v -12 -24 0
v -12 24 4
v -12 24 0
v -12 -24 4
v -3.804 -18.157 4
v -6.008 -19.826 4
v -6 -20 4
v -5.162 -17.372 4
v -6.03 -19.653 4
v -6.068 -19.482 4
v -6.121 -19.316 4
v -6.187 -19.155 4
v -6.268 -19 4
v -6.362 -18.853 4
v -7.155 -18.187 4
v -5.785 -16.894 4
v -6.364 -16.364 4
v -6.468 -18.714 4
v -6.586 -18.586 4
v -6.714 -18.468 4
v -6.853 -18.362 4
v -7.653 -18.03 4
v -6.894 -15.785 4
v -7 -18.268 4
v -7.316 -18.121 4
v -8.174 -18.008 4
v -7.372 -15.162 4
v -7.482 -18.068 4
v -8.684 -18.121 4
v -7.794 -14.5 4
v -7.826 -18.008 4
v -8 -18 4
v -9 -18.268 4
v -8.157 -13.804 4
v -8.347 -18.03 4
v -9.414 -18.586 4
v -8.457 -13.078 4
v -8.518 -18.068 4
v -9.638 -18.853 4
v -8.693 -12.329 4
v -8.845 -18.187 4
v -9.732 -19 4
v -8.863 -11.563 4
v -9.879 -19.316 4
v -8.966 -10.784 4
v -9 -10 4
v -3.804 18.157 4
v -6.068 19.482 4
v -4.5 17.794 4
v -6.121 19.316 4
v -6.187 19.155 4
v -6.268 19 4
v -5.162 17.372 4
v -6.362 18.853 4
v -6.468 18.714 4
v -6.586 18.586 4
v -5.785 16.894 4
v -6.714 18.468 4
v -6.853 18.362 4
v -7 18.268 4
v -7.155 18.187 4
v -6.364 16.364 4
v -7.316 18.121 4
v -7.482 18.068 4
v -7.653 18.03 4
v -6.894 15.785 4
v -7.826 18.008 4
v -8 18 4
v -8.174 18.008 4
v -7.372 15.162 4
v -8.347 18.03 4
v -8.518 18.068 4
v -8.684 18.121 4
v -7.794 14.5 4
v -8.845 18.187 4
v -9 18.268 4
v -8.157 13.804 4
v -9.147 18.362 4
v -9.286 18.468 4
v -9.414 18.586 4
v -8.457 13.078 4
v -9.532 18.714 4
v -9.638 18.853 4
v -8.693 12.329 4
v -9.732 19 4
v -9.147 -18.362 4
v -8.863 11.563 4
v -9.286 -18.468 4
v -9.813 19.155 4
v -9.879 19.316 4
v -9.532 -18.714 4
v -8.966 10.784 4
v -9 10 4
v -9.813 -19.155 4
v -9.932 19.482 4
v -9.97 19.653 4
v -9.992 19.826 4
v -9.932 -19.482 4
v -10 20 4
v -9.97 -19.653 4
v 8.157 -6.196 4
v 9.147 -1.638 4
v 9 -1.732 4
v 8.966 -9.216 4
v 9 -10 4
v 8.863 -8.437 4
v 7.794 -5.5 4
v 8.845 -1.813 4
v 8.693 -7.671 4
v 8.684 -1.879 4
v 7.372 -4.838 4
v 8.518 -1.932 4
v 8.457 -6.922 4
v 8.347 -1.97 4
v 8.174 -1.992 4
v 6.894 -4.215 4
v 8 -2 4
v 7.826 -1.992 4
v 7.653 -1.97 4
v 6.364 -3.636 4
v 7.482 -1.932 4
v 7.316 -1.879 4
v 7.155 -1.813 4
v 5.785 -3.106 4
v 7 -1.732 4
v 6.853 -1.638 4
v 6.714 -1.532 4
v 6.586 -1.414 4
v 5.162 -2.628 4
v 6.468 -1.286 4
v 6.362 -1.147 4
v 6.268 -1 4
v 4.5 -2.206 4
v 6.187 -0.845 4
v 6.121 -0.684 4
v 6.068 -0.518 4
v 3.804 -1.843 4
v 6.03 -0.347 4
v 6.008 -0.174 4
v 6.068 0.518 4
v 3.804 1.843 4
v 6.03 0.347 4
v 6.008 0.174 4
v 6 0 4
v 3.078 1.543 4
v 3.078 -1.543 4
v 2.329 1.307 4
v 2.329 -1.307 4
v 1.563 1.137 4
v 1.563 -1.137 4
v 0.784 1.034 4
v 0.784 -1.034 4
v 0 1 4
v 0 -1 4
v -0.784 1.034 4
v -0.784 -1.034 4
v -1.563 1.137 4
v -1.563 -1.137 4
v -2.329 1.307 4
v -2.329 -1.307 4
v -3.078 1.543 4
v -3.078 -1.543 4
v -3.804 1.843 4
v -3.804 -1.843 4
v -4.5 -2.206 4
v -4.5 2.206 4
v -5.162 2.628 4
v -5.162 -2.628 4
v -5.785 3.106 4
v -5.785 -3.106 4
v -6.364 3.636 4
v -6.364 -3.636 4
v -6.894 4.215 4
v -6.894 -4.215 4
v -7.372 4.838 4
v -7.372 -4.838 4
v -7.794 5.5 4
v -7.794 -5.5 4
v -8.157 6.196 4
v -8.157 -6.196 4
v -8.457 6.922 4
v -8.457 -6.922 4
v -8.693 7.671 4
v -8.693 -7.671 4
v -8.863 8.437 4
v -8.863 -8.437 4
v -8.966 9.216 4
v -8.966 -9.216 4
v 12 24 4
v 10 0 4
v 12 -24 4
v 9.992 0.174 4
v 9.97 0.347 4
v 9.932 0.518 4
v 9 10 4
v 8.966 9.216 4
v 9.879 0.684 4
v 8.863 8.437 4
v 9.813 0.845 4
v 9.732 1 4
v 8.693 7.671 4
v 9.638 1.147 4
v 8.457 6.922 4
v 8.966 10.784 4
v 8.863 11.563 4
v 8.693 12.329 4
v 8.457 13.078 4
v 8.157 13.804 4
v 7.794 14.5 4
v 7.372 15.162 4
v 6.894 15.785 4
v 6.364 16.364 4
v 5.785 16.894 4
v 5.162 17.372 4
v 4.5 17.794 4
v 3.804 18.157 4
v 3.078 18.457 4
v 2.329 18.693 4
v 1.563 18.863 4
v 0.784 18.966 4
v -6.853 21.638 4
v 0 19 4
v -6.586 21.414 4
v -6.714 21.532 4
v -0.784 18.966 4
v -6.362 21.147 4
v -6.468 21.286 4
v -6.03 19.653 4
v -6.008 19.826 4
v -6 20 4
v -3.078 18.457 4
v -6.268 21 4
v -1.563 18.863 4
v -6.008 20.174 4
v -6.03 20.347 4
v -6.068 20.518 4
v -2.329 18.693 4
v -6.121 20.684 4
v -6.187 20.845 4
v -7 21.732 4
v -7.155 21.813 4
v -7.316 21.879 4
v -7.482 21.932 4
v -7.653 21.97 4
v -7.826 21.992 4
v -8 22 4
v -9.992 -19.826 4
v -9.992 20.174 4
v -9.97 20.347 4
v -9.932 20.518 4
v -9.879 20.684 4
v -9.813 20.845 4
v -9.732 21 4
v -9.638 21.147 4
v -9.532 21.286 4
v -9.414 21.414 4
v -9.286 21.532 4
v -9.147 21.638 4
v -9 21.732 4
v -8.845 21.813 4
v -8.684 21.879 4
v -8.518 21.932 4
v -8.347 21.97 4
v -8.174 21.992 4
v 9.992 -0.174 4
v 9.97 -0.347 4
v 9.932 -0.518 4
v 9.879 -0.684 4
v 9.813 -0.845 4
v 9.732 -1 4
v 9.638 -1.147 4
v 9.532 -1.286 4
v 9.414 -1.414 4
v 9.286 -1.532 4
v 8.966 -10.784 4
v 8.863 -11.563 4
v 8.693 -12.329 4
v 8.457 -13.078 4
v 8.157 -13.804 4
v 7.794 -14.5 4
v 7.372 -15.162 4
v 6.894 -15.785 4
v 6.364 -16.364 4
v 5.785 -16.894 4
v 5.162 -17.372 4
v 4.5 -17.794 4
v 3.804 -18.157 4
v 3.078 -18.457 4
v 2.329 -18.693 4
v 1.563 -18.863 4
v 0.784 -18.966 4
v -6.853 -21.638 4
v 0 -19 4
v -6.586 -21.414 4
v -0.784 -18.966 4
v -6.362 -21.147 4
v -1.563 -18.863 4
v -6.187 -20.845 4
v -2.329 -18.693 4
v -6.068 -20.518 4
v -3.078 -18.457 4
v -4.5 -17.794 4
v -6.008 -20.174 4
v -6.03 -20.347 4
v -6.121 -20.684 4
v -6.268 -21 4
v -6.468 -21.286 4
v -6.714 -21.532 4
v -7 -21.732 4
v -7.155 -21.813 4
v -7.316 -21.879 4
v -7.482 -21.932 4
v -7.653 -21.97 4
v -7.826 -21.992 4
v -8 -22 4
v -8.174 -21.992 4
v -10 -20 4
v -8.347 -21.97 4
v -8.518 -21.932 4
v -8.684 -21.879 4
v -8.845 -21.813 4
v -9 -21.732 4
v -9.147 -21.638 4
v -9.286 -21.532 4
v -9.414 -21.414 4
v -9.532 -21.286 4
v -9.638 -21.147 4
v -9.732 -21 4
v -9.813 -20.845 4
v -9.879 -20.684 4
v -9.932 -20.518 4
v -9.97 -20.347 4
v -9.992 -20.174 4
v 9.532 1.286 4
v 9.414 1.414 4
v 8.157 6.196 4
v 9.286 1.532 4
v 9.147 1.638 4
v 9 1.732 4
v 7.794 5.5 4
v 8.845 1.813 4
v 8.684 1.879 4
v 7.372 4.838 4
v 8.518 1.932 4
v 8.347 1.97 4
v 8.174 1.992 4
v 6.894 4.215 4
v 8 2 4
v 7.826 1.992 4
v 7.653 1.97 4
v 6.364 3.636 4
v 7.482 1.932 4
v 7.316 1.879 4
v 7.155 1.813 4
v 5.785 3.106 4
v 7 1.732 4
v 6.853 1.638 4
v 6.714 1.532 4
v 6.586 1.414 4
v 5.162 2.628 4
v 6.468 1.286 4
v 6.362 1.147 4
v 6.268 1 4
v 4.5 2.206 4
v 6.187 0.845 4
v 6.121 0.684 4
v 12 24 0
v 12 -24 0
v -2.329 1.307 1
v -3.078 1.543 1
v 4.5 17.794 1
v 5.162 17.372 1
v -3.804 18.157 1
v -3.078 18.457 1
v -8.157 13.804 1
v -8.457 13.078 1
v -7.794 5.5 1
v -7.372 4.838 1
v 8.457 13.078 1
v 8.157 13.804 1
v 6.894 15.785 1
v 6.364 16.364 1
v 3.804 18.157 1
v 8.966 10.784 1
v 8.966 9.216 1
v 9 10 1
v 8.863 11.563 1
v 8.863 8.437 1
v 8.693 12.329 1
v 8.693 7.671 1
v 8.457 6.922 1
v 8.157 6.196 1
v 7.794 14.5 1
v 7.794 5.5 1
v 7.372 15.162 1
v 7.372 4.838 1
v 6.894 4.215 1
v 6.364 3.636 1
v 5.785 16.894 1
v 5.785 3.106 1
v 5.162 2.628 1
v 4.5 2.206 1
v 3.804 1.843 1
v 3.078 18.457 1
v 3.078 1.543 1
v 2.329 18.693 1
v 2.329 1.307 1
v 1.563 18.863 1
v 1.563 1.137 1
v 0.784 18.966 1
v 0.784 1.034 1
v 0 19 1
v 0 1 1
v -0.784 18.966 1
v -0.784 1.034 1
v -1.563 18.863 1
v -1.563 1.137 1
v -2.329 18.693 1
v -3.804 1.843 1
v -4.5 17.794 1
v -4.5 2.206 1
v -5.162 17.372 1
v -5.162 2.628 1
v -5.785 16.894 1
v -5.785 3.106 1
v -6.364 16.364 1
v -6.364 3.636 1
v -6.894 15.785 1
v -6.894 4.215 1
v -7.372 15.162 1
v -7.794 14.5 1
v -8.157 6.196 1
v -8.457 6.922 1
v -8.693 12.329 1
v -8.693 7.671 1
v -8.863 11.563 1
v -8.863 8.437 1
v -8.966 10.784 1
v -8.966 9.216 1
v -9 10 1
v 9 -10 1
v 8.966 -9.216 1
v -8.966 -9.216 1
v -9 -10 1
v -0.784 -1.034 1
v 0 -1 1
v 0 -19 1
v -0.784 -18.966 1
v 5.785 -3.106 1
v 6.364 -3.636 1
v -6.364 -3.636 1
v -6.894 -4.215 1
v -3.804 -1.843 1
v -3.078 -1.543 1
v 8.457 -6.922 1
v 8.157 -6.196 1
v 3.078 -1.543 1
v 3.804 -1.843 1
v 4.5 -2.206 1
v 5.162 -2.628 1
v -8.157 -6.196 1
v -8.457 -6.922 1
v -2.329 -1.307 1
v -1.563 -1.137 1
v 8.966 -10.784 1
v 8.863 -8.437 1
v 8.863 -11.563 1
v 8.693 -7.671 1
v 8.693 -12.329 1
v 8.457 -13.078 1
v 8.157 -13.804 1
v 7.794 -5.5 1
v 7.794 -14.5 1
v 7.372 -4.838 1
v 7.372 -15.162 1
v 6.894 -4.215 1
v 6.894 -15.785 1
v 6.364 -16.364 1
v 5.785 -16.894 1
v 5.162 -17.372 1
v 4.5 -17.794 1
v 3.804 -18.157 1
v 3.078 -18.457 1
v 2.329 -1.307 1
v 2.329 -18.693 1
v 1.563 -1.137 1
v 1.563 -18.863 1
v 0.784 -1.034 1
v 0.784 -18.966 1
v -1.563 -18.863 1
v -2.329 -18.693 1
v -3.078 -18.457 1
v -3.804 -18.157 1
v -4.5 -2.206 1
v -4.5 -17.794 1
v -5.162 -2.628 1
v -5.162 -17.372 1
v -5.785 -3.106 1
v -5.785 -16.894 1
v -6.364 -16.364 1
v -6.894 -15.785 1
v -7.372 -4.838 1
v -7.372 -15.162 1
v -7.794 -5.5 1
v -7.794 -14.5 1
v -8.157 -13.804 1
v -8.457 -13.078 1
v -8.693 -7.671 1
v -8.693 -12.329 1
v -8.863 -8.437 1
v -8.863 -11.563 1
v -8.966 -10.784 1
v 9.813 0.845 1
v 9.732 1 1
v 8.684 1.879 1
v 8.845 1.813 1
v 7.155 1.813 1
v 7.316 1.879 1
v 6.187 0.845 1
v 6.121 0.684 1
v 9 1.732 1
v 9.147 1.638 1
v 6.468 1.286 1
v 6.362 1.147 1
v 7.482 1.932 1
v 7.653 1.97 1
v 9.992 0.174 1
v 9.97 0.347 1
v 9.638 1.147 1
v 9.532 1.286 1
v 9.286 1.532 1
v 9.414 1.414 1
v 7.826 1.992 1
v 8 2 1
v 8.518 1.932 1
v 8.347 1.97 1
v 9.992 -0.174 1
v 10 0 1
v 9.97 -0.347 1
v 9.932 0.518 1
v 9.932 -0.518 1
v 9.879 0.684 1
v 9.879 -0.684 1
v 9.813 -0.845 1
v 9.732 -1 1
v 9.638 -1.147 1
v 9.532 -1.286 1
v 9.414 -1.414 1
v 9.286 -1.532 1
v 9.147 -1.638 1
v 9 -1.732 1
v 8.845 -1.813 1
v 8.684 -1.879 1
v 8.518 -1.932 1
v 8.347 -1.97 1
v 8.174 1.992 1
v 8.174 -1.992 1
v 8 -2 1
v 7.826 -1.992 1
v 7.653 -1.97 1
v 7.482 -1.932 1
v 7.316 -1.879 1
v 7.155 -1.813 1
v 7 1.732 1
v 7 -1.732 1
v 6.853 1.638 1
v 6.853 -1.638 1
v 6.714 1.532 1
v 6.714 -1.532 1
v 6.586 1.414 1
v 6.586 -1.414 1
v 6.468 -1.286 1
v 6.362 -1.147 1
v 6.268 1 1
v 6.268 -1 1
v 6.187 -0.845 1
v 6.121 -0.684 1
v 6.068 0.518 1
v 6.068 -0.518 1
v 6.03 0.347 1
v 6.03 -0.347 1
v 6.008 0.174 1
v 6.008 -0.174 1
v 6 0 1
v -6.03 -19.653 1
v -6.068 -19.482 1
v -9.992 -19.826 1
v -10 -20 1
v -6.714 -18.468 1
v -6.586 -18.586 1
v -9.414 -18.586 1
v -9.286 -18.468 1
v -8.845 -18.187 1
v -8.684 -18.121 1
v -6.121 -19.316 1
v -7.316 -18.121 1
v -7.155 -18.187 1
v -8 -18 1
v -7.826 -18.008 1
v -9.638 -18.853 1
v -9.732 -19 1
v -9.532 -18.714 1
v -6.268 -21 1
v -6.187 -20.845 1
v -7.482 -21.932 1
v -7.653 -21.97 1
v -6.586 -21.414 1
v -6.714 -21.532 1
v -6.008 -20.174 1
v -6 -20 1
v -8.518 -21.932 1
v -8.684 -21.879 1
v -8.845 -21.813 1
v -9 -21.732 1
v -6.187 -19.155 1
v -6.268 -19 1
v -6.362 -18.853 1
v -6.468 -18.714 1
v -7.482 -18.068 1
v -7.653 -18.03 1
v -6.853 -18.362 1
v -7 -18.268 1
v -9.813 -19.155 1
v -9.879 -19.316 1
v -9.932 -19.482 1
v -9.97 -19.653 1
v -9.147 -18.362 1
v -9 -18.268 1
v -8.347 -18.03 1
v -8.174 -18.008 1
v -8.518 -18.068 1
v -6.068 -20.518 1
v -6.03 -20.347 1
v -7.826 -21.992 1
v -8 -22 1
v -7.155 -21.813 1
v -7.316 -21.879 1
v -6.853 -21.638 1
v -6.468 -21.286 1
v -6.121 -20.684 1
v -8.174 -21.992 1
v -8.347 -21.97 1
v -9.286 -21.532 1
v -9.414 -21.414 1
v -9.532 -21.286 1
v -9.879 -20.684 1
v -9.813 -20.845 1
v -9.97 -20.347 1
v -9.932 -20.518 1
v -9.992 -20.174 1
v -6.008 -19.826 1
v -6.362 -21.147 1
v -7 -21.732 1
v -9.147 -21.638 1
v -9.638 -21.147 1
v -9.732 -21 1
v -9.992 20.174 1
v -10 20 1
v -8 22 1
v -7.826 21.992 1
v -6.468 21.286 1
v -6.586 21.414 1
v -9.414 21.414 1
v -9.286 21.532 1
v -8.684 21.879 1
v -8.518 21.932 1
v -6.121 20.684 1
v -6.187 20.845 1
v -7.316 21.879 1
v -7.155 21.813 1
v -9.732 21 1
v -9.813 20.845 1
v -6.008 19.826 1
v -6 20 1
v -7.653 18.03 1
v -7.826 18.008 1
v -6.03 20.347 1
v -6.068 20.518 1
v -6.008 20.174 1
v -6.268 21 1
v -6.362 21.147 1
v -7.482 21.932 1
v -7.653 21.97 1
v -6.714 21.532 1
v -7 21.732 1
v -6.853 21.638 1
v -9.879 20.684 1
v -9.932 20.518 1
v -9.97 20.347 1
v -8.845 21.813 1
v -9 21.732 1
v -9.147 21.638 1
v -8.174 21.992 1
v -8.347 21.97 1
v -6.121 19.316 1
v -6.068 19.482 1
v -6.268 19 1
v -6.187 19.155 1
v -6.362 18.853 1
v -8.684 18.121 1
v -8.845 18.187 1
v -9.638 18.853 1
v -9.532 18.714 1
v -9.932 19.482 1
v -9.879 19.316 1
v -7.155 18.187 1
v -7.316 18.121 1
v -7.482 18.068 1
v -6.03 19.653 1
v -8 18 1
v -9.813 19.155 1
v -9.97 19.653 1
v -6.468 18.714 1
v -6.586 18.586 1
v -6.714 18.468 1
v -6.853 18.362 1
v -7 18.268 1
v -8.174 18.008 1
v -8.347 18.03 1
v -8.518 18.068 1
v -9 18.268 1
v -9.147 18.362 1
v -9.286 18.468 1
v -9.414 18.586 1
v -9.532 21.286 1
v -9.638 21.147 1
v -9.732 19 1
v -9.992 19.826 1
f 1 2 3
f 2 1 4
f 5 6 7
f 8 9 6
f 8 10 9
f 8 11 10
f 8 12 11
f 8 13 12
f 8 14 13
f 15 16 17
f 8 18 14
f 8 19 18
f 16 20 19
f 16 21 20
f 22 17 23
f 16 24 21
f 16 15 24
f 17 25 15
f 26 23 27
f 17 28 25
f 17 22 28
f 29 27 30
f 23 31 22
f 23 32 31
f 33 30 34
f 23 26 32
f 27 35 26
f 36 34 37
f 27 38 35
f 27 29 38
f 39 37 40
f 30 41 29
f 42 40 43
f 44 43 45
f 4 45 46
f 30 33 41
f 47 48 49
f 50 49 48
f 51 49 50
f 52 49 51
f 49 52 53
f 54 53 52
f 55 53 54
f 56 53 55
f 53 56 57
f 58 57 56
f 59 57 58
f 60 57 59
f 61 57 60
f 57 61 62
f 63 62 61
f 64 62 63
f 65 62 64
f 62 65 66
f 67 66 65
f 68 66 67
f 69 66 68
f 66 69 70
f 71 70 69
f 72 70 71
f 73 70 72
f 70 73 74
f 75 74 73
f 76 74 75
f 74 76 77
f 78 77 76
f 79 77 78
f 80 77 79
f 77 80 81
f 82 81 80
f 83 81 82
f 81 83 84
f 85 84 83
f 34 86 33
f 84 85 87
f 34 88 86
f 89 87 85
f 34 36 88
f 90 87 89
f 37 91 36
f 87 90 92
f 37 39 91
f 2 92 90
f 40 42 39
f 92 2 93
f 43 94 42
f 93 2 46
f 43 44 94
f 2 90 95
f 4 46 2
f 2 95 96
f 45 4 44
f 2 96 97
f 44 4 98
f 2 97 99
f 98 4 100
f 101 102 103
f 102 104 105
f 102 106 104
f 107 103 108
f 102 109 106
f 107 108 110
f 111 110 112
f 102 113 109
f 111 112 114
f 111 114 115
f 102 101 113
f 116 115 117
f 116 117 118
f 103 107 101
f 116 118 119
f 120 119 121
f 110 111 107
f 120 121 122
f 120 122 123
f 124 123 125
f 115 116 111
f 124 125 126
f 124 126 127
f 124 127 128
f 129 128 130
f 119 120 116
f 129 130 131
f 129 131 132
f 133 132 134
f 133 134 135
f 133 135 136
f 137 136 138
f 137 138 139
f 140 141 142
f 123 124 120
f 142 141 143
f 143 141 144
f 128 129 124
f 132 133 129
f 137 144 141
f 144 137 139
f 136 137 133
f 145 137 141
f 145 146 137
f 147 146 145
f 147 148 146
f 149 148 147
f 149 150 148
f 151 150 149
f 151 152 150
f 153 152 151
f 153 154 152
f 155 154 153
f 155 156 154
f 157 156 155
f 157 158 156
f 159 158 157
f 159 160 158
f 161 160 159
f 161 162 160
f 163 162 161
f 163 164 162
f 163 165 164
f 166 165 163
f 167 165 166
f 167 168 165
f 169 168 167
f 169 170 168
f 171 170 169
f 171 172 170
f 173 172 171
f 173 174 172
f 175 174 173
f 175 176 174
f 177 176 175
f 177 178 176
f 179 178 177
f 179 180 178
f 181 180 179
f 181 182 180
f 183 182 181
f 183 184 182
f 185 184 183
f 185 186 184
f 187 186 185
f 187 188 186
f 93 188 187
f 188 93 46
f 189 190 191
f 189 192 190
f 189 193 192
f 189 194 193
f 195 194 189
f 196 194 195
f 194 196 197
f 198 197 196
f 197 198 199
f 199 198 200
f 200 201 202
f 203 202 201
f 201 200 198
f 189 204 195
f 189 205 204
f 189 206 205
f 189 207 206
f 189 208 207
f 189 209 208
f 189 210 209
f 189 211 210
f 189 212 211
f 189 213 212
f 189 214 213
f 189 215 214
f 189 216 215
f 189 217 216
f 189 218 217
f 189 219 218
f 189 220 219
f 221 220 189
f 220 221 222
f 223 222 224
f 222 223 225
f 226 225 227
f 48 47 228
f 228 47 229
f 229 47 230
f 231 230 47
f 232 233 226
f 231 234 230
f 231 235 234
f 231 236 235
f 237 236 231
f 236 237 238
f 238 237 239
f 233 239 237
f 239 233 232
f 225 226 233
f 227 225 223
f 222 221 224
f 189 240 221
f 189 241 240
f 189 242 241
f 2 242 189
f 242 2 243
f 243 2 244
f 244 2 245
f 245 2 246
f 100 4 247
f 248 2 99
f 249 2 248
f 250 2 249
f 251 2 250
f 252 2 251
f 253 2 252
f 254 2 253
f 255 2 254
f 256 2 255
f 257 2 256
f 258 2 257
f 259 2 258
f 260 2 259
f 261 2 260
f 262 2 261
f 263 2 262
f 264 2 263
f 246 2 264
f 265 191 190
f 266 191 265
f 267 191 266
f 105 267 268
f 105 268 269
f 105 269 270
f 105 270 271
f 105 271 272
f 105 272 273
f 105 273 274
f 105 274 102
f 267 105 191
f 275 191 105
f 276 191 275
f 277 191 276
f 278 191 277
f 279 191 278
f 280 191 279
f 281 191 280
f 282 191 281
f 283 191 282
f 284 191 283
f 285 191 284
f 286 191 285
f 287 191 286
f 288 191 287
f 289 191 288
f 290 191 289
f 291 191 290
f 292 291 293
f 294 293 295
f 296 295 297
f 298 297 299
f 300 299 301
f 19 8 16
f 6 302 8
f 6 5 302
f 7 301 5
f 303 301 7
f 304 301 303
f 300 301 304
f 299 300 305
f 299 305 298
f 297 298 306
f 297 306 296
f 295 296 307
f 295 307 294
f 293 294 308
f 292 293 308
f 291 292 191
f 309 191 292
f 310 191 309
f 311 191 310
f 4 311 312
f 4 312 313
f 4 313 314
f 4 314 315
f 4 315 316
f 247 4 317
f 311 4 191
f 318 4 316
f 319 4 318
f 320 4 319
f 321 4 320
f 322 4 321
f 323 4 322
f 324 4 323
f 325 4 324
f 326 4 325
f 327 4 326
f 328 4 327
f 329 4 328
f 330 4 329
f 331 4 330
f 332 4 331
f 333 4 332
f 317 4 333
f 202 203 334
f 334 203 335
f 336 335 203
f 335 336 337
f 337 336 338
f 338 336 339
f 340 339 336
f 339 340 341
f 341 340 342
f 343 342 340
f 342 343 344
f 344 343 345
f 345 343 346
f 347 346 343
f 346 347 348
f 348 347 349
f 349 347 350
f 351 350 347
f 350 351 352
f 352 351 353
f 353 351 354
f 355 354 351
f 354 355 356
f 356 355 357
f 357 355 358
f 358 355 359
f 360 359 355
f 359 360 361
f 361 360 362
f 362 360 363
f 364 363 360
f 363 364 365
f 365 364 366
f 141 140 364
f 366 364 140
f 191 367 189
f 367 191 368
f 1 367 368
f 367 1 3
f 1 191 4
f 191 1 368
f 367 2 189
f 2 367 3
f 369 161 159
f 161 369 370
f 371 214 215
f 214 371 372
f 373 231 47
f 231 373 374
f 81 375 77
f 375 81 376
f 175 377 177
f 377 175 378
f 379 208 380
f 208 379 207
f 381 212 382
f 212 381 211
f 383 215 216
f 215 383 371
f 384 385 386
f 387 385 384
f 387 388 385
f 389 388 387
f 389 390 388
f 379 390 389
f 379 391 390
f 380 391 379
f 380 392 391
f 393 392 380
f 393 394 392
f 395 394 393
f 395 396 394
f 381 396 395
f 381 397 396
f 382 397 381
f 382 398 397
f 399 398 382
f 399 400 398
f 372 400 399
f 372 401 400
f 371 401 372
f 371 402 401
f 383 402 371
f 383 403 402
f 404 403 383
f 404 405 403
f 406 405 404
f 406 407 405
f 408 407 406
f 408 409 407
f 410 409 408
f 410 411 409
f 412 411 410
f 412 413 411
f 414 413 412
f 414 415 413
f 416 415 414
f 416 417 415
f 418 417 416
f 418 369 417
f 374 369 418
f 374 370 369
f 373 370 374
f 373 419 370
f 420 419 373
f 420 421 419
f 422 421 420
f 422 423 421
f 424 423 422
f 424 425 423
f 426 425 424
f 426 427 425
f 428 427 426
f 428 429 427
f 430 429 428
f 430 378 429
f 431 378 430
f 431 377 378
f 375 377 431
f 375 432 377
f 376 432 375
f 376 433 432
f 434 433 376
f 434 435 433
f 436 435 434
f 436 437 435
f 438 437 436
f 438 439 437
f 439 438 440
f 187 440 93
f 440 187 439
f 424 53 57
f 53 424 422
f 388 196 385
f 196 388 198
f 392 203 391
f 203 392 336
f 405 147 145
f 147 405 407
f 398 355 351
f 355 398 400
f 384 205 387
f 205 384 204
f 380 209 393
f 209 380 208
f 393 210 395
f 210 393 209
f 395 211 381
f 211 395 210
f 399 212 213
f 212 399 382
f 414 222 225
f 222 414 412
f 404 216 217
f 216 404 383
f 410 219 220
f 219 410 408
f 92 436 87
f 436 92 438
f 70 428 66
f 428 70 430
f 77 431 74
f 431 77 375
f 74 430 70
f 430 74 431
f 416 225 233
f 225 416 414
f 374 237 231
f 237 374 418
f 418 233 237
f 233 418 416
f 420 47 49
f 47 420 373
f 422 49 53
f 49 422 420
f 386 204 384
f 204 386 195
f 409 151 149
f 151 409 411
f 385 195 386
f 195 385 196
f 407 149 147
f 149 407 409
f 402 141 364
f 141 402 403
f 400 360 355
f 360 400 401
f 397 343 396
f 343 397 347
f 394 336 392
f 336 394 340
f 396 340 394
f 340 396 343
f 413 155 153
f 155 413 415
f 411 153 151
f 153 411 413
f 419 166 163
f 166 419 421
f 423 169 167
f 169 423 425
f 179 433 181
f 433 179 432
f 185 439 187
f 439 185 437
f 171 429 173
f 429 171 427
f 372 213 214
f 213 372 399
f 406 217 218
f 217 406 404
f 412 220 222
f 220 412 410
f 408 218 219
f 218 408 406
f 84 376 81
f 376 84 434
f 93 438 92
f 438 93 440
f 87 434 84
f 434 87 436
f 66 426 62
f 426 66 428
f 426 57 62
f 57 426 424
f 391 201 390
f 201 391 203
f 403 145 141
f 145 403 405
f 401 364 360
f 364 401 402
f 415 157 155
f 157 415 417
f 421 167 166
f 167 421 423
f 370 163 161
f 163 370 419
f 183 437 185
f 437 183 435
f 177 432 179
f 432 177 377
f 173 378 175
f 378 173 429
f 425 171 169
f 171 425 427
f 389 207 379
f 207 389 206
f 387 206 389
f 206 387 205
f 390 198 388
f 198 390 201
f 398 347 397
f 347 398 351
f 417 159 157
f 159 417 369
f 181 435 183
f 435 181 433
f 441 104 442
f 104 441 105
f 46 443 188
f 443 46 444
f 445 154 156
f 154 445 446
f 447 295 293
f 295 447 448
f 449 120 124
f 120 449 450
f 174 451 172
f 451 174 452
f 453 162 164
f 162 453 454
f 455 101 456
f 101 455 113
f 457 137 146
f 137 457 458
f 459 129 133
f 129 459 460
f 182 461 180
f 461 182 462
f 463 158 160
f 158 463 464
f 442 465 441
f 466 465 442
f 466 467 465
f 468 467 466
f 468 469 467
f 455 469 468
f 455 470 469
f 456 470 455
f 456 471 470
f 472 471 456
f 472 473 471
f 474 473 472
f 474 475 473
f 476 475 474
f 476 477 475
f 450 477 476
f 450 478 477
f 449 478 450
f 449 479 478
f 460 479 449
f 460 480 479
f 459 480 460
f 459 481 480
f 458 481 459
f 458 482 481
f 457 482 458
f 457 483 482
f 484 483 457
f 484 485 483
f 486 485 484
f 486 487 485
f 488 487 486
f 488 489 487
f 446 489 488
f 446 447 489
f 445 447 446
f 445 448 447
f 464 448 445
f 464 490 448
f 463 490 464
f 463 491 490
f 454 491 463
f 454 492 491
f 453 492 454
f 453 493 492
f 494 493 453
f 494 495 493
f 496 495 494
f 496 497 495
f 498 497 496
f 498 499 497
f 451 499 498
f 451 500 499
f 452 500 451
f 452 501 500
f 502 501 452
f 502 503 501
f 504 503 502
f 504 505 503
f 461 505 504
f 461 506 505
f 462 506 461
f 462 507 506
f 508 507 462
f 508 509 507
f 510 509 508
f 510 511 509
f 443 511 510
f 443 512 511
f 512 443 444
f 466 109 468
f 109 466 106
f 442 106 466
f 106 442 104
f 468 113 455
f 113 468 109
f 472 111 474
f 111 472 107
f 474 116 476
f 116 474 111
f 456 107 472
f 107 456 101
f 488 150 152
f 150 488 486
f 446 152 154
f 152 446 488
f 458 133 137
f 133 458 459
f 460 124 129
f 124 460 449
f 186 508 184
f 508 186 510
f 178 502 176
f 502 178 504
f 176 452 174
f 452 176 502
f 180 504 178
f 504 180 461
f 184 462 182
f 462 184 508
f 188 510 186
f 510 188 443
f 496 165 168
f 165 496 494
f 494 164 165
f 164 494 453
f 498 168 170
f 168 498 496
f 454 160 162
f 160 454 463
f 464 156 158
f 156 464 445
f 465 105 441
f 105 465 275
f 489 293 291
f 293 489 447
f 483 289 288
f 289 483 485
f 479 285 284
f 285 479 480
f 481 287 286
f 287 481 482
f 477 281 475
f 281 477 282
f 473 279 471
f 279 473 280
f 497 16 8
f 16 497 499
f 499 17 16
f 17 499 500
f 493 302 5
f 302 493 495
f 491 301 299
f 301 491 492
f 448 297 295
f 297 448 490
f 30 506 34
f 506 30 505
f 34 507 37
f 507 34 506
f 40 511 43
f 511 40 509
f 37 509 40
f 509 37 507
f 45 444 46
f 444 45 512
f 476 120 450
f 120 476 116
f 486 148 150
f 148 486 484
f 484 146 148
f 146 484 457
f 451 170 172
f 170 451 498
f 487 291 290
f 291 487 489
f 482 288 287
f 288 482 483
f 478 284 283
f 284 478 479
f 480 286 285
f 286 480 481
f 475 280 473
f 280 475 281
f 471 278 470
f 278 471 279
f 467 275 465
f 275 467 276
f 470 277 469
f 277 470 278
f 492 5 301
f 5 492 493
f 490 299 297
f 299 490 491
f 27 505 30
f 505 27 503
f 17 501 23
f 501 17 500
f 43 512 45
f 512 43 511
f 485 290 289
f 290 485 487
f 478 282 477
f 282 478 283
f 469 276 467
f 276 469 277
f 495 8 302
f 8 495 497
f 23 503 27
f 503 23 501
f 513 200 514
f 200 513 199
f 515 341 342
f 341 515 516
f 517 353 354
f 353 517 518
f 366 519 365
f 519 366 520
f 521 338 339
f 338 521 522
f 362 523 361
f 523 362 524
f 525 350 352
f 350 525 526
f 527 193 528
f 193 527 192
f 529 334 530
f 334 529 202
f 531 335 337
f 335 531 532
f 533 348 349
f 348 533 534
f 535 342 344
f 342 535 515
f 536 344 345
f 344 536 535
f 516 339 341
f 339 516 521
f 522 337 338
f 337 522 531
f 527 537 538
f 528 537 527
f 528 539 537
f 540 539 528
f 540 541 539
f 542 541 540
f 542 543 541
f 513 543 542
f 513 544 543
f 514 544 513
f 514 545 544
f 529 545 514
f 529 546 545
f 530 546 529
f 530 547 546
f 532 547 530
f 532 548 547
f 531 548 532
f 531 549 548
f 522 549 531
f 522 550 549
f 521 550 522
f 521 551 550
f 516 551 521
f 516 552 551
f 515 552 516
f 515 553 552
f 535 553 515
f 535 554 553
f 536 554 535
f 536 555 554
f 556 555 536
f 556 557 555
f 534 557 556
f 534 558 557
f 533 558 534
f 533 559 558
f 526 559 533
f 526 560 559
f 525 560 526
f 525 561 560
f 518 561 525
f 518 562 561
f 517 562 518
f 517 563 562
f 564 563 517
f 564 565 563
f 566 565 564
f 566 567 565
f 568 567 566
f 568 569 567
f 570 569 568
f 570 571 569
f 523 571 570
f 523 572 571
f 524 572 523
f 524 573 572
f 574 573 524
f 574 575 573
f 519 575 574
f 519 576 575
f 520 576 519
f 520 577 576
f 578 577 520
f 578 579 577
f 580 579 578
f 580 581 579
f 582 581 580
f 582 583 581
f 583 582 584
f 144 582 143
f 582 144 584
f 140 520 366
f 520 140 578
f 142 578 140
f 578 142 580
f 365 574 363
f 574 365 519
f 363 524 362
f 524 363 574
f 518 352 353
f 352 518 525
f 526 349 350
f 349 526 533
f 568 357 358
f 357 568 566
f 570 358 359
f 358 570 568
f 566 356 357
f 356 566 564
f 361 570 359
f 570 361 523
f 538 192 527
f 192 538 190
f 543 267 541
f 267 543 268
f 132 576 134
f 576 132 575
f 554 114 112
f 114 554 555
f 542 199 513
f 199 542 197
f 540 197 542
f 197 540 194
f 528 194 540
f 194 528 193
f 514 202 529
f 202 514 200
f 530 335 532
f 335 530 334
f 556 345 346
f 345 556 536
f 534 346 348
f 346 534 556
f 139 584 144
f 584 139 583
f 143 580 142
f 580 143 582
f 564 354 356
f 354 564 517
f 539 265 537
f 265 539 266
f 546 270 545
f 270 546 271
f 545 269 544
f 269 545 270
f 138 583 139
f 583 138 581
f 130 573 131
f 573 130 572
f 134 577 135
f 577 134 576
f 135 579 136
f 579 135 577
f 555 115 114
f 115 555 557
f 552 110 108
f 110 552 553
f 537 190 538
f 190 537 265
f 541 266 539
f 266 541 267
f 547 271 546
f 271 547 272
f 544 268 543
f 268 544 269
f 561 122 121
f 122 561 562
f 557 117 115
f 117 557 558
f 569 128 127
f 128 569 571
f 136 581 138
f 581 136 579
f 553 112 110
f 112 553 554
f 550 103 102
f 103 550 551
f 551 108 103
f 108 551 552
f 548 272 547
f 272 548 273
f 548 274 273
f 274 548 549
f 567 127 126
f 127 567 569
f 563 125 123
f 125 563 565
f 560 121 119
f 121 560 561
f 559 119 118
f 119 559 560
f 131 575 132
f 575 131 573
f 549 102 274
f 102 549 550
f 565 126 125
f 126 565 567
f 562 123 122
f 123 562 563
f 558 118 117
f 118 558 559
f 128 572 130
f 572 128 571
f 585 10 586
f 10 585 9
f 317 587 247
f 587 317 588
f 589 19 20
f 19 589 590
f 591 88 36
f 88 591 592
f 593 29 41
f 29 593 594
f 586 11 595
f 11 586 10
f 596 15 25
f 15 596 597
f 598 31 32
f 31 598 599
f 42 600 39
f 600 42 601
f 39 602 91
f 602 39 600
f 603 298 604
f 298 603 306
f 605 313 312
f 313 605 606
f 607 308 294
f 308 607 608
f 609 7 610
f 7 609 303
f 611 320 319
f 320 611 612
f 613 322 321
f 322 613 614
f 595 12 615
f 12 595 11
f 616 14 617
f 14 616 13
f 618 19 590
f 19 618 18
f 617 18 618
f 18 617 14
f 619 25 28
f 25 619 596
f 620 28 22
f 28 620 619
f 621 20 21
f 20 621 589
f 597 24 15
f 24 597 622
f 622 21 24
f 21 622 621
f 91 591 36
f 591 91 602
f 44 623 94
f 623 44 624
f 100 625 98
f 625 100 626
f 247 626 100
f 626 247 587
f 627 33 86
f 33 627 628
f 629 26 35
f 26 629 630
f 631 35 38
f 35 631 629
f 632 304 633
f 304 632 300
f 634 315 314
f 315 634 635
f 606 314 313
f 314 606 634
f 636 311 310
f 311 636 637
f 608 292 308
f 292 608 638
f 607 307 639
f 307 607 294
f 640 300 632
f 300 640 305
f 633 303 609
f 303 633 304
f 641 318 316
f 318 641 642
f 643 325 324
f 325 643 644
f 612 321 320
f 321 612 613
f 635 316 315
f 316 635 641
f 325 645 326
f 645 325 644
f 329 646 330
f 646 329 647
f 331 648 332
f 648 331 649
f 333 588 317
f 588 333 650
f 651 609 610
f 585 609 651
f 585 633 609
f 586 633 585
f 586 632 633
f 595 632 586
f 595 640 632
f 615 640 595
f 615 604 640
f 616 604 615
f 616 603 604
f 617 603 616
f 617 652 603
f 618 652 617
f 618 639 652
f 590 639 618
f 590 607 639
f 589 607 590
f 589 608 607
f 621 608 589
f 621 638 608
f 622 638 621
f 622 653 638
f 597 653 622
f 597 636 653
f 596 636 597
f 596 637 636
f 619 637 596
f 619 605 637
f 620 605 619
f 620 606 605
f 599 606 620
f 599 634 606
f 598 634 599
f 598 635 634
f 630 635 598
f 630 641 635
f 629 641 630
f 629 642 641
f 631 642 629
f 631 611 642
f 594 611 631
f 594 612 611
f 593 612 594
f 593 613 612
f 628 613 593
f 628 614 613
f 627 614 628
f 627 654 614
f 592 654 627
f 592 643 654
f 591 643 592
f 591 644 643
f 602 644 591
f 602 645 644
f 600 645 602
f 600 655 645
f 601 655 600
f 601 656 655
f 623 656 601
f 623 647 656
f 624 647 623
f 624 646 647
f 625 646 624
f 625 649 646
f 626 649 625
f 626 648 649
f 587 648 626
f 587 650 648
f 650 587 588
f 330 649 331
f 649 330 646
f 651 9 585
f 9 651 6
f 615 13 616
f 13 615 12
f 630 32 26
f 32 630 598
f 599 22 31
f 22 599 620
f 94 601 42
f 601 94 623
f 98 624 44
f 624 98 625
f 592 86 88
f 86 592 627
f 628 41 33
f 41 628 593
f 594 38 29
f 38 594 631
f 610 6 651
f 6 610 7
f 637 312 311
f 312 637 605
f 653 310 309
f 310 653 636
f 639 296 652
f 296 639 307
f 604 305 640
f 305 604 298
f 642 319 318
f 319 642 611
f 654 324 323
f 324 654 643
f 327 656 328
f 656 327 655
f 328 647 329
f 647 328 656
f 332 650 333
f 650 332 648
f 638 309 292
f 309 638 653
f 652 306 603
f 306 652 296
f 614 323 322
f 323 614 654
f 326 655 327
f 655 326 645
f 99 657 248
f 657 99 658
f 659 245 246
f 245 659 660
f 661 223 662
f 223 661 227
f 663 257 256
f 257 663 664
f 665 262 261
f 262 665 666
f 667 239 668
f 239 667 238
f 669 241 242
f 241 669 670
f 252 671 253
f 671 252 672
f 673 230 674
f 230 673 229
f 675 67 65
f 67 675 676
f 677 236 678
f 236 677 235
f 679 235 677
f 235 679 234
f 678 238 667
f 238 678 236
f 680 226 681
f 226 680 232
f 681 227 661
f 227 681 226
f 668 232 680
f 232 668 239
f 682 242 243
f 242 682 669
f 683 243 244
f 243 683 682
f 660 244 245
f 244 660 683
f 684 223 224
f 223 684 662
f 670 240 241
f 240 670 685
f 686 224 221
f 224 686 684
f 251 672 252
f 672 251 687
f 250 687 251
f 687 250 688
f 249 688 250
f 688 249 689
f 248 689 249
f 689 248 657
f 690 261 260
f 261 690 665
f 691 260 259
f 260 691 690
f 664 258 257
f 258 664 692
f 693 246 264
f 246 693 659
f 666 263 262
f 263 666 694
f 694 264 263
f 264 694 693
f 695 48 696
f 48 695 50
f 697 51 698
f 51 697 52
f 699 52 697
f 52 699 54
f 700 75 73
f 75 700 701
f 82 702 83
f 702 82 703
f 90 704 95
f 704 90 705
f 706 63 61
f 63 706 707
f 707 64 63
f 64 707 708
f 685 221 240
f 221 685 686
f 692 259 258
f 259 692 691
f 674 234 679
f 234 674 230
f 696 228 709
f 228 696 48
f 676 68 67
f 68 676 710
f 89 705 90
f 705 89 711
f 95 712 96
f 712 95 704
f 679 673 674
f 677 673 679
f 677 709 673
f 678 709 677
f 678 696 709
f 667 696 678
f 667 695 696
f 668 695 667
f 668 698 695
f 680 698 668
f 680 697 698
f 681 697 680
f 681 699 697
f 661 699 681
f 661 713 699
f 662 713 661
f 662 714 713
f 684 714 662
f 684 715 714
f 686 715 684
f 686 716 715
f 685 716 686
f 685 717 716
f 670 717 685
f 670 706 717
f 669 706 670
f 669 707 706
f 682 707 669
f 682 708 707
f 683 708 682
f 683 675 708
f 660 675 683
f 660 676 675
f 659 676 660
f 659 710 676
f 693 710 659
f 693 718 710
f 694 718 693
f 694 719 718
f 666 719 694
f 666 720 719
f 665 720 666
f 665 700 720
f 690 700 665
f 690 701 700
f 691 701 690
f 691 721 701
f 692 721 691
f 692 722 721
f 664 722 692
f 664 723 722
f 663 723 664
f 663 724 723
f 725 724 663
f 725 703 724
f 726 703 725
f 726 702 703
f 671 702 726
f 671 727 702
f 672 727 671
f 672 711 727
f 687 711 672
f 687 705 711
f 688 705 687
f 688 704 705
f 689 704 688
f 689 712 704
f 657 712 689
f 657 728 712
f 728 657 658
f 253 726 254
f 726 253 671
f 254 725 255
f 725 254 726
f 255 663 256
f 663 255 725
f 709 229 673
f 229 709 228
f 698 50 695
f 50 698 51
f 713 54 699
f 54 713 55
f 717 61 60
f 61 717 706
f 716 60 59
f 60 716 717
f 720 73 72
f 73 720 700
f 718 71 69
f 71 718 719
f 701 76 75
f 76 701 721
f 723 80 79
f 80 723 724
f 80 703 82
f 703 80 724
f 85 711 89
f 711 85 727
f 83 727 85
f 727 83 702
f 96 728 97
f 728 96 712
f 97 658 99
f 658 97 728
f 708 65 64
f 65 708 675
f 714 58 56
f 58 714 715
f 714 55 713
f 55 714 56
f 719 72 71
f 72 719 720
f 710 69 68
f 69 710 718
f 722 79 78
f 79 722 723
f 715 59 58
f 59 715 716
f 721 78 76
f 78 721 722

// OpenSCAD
// Global resolution
$fs = 0.1;  // Don't generate smaller facets than 0.1 mm
$fa = 5;    // Don't generate larger angles than 5 degrees

$bot=1;
$magr = 18/2;

// Main geometry
difference() {
  rectangle();
  translate([0,$magr+1,$bot]) magnet();
  translate([0,-($magr+1),$bot]) magnet();
  translate([8,0,$bot]) drill();
  translate([-8,-20,$bot]) drill();
  translate([-8,20,$bot]) drill();
}

// Core geometric primitives
// These can be modified to create variations of the final object

module magnet() {
    h=10;
    r=$magr;
    cylinder(h=h, r=r, center=[0,0,h/2]);
}

module rectangle() {
    w=24;
    l=w*2;
    h=4;
    translate([0,0,h/2]) cube([w,l,h], center=true);
}

module drill() {
    h=10;
    r=2;
    cylinder(h=h, r=r, center=[0,0,h/2]);
}
